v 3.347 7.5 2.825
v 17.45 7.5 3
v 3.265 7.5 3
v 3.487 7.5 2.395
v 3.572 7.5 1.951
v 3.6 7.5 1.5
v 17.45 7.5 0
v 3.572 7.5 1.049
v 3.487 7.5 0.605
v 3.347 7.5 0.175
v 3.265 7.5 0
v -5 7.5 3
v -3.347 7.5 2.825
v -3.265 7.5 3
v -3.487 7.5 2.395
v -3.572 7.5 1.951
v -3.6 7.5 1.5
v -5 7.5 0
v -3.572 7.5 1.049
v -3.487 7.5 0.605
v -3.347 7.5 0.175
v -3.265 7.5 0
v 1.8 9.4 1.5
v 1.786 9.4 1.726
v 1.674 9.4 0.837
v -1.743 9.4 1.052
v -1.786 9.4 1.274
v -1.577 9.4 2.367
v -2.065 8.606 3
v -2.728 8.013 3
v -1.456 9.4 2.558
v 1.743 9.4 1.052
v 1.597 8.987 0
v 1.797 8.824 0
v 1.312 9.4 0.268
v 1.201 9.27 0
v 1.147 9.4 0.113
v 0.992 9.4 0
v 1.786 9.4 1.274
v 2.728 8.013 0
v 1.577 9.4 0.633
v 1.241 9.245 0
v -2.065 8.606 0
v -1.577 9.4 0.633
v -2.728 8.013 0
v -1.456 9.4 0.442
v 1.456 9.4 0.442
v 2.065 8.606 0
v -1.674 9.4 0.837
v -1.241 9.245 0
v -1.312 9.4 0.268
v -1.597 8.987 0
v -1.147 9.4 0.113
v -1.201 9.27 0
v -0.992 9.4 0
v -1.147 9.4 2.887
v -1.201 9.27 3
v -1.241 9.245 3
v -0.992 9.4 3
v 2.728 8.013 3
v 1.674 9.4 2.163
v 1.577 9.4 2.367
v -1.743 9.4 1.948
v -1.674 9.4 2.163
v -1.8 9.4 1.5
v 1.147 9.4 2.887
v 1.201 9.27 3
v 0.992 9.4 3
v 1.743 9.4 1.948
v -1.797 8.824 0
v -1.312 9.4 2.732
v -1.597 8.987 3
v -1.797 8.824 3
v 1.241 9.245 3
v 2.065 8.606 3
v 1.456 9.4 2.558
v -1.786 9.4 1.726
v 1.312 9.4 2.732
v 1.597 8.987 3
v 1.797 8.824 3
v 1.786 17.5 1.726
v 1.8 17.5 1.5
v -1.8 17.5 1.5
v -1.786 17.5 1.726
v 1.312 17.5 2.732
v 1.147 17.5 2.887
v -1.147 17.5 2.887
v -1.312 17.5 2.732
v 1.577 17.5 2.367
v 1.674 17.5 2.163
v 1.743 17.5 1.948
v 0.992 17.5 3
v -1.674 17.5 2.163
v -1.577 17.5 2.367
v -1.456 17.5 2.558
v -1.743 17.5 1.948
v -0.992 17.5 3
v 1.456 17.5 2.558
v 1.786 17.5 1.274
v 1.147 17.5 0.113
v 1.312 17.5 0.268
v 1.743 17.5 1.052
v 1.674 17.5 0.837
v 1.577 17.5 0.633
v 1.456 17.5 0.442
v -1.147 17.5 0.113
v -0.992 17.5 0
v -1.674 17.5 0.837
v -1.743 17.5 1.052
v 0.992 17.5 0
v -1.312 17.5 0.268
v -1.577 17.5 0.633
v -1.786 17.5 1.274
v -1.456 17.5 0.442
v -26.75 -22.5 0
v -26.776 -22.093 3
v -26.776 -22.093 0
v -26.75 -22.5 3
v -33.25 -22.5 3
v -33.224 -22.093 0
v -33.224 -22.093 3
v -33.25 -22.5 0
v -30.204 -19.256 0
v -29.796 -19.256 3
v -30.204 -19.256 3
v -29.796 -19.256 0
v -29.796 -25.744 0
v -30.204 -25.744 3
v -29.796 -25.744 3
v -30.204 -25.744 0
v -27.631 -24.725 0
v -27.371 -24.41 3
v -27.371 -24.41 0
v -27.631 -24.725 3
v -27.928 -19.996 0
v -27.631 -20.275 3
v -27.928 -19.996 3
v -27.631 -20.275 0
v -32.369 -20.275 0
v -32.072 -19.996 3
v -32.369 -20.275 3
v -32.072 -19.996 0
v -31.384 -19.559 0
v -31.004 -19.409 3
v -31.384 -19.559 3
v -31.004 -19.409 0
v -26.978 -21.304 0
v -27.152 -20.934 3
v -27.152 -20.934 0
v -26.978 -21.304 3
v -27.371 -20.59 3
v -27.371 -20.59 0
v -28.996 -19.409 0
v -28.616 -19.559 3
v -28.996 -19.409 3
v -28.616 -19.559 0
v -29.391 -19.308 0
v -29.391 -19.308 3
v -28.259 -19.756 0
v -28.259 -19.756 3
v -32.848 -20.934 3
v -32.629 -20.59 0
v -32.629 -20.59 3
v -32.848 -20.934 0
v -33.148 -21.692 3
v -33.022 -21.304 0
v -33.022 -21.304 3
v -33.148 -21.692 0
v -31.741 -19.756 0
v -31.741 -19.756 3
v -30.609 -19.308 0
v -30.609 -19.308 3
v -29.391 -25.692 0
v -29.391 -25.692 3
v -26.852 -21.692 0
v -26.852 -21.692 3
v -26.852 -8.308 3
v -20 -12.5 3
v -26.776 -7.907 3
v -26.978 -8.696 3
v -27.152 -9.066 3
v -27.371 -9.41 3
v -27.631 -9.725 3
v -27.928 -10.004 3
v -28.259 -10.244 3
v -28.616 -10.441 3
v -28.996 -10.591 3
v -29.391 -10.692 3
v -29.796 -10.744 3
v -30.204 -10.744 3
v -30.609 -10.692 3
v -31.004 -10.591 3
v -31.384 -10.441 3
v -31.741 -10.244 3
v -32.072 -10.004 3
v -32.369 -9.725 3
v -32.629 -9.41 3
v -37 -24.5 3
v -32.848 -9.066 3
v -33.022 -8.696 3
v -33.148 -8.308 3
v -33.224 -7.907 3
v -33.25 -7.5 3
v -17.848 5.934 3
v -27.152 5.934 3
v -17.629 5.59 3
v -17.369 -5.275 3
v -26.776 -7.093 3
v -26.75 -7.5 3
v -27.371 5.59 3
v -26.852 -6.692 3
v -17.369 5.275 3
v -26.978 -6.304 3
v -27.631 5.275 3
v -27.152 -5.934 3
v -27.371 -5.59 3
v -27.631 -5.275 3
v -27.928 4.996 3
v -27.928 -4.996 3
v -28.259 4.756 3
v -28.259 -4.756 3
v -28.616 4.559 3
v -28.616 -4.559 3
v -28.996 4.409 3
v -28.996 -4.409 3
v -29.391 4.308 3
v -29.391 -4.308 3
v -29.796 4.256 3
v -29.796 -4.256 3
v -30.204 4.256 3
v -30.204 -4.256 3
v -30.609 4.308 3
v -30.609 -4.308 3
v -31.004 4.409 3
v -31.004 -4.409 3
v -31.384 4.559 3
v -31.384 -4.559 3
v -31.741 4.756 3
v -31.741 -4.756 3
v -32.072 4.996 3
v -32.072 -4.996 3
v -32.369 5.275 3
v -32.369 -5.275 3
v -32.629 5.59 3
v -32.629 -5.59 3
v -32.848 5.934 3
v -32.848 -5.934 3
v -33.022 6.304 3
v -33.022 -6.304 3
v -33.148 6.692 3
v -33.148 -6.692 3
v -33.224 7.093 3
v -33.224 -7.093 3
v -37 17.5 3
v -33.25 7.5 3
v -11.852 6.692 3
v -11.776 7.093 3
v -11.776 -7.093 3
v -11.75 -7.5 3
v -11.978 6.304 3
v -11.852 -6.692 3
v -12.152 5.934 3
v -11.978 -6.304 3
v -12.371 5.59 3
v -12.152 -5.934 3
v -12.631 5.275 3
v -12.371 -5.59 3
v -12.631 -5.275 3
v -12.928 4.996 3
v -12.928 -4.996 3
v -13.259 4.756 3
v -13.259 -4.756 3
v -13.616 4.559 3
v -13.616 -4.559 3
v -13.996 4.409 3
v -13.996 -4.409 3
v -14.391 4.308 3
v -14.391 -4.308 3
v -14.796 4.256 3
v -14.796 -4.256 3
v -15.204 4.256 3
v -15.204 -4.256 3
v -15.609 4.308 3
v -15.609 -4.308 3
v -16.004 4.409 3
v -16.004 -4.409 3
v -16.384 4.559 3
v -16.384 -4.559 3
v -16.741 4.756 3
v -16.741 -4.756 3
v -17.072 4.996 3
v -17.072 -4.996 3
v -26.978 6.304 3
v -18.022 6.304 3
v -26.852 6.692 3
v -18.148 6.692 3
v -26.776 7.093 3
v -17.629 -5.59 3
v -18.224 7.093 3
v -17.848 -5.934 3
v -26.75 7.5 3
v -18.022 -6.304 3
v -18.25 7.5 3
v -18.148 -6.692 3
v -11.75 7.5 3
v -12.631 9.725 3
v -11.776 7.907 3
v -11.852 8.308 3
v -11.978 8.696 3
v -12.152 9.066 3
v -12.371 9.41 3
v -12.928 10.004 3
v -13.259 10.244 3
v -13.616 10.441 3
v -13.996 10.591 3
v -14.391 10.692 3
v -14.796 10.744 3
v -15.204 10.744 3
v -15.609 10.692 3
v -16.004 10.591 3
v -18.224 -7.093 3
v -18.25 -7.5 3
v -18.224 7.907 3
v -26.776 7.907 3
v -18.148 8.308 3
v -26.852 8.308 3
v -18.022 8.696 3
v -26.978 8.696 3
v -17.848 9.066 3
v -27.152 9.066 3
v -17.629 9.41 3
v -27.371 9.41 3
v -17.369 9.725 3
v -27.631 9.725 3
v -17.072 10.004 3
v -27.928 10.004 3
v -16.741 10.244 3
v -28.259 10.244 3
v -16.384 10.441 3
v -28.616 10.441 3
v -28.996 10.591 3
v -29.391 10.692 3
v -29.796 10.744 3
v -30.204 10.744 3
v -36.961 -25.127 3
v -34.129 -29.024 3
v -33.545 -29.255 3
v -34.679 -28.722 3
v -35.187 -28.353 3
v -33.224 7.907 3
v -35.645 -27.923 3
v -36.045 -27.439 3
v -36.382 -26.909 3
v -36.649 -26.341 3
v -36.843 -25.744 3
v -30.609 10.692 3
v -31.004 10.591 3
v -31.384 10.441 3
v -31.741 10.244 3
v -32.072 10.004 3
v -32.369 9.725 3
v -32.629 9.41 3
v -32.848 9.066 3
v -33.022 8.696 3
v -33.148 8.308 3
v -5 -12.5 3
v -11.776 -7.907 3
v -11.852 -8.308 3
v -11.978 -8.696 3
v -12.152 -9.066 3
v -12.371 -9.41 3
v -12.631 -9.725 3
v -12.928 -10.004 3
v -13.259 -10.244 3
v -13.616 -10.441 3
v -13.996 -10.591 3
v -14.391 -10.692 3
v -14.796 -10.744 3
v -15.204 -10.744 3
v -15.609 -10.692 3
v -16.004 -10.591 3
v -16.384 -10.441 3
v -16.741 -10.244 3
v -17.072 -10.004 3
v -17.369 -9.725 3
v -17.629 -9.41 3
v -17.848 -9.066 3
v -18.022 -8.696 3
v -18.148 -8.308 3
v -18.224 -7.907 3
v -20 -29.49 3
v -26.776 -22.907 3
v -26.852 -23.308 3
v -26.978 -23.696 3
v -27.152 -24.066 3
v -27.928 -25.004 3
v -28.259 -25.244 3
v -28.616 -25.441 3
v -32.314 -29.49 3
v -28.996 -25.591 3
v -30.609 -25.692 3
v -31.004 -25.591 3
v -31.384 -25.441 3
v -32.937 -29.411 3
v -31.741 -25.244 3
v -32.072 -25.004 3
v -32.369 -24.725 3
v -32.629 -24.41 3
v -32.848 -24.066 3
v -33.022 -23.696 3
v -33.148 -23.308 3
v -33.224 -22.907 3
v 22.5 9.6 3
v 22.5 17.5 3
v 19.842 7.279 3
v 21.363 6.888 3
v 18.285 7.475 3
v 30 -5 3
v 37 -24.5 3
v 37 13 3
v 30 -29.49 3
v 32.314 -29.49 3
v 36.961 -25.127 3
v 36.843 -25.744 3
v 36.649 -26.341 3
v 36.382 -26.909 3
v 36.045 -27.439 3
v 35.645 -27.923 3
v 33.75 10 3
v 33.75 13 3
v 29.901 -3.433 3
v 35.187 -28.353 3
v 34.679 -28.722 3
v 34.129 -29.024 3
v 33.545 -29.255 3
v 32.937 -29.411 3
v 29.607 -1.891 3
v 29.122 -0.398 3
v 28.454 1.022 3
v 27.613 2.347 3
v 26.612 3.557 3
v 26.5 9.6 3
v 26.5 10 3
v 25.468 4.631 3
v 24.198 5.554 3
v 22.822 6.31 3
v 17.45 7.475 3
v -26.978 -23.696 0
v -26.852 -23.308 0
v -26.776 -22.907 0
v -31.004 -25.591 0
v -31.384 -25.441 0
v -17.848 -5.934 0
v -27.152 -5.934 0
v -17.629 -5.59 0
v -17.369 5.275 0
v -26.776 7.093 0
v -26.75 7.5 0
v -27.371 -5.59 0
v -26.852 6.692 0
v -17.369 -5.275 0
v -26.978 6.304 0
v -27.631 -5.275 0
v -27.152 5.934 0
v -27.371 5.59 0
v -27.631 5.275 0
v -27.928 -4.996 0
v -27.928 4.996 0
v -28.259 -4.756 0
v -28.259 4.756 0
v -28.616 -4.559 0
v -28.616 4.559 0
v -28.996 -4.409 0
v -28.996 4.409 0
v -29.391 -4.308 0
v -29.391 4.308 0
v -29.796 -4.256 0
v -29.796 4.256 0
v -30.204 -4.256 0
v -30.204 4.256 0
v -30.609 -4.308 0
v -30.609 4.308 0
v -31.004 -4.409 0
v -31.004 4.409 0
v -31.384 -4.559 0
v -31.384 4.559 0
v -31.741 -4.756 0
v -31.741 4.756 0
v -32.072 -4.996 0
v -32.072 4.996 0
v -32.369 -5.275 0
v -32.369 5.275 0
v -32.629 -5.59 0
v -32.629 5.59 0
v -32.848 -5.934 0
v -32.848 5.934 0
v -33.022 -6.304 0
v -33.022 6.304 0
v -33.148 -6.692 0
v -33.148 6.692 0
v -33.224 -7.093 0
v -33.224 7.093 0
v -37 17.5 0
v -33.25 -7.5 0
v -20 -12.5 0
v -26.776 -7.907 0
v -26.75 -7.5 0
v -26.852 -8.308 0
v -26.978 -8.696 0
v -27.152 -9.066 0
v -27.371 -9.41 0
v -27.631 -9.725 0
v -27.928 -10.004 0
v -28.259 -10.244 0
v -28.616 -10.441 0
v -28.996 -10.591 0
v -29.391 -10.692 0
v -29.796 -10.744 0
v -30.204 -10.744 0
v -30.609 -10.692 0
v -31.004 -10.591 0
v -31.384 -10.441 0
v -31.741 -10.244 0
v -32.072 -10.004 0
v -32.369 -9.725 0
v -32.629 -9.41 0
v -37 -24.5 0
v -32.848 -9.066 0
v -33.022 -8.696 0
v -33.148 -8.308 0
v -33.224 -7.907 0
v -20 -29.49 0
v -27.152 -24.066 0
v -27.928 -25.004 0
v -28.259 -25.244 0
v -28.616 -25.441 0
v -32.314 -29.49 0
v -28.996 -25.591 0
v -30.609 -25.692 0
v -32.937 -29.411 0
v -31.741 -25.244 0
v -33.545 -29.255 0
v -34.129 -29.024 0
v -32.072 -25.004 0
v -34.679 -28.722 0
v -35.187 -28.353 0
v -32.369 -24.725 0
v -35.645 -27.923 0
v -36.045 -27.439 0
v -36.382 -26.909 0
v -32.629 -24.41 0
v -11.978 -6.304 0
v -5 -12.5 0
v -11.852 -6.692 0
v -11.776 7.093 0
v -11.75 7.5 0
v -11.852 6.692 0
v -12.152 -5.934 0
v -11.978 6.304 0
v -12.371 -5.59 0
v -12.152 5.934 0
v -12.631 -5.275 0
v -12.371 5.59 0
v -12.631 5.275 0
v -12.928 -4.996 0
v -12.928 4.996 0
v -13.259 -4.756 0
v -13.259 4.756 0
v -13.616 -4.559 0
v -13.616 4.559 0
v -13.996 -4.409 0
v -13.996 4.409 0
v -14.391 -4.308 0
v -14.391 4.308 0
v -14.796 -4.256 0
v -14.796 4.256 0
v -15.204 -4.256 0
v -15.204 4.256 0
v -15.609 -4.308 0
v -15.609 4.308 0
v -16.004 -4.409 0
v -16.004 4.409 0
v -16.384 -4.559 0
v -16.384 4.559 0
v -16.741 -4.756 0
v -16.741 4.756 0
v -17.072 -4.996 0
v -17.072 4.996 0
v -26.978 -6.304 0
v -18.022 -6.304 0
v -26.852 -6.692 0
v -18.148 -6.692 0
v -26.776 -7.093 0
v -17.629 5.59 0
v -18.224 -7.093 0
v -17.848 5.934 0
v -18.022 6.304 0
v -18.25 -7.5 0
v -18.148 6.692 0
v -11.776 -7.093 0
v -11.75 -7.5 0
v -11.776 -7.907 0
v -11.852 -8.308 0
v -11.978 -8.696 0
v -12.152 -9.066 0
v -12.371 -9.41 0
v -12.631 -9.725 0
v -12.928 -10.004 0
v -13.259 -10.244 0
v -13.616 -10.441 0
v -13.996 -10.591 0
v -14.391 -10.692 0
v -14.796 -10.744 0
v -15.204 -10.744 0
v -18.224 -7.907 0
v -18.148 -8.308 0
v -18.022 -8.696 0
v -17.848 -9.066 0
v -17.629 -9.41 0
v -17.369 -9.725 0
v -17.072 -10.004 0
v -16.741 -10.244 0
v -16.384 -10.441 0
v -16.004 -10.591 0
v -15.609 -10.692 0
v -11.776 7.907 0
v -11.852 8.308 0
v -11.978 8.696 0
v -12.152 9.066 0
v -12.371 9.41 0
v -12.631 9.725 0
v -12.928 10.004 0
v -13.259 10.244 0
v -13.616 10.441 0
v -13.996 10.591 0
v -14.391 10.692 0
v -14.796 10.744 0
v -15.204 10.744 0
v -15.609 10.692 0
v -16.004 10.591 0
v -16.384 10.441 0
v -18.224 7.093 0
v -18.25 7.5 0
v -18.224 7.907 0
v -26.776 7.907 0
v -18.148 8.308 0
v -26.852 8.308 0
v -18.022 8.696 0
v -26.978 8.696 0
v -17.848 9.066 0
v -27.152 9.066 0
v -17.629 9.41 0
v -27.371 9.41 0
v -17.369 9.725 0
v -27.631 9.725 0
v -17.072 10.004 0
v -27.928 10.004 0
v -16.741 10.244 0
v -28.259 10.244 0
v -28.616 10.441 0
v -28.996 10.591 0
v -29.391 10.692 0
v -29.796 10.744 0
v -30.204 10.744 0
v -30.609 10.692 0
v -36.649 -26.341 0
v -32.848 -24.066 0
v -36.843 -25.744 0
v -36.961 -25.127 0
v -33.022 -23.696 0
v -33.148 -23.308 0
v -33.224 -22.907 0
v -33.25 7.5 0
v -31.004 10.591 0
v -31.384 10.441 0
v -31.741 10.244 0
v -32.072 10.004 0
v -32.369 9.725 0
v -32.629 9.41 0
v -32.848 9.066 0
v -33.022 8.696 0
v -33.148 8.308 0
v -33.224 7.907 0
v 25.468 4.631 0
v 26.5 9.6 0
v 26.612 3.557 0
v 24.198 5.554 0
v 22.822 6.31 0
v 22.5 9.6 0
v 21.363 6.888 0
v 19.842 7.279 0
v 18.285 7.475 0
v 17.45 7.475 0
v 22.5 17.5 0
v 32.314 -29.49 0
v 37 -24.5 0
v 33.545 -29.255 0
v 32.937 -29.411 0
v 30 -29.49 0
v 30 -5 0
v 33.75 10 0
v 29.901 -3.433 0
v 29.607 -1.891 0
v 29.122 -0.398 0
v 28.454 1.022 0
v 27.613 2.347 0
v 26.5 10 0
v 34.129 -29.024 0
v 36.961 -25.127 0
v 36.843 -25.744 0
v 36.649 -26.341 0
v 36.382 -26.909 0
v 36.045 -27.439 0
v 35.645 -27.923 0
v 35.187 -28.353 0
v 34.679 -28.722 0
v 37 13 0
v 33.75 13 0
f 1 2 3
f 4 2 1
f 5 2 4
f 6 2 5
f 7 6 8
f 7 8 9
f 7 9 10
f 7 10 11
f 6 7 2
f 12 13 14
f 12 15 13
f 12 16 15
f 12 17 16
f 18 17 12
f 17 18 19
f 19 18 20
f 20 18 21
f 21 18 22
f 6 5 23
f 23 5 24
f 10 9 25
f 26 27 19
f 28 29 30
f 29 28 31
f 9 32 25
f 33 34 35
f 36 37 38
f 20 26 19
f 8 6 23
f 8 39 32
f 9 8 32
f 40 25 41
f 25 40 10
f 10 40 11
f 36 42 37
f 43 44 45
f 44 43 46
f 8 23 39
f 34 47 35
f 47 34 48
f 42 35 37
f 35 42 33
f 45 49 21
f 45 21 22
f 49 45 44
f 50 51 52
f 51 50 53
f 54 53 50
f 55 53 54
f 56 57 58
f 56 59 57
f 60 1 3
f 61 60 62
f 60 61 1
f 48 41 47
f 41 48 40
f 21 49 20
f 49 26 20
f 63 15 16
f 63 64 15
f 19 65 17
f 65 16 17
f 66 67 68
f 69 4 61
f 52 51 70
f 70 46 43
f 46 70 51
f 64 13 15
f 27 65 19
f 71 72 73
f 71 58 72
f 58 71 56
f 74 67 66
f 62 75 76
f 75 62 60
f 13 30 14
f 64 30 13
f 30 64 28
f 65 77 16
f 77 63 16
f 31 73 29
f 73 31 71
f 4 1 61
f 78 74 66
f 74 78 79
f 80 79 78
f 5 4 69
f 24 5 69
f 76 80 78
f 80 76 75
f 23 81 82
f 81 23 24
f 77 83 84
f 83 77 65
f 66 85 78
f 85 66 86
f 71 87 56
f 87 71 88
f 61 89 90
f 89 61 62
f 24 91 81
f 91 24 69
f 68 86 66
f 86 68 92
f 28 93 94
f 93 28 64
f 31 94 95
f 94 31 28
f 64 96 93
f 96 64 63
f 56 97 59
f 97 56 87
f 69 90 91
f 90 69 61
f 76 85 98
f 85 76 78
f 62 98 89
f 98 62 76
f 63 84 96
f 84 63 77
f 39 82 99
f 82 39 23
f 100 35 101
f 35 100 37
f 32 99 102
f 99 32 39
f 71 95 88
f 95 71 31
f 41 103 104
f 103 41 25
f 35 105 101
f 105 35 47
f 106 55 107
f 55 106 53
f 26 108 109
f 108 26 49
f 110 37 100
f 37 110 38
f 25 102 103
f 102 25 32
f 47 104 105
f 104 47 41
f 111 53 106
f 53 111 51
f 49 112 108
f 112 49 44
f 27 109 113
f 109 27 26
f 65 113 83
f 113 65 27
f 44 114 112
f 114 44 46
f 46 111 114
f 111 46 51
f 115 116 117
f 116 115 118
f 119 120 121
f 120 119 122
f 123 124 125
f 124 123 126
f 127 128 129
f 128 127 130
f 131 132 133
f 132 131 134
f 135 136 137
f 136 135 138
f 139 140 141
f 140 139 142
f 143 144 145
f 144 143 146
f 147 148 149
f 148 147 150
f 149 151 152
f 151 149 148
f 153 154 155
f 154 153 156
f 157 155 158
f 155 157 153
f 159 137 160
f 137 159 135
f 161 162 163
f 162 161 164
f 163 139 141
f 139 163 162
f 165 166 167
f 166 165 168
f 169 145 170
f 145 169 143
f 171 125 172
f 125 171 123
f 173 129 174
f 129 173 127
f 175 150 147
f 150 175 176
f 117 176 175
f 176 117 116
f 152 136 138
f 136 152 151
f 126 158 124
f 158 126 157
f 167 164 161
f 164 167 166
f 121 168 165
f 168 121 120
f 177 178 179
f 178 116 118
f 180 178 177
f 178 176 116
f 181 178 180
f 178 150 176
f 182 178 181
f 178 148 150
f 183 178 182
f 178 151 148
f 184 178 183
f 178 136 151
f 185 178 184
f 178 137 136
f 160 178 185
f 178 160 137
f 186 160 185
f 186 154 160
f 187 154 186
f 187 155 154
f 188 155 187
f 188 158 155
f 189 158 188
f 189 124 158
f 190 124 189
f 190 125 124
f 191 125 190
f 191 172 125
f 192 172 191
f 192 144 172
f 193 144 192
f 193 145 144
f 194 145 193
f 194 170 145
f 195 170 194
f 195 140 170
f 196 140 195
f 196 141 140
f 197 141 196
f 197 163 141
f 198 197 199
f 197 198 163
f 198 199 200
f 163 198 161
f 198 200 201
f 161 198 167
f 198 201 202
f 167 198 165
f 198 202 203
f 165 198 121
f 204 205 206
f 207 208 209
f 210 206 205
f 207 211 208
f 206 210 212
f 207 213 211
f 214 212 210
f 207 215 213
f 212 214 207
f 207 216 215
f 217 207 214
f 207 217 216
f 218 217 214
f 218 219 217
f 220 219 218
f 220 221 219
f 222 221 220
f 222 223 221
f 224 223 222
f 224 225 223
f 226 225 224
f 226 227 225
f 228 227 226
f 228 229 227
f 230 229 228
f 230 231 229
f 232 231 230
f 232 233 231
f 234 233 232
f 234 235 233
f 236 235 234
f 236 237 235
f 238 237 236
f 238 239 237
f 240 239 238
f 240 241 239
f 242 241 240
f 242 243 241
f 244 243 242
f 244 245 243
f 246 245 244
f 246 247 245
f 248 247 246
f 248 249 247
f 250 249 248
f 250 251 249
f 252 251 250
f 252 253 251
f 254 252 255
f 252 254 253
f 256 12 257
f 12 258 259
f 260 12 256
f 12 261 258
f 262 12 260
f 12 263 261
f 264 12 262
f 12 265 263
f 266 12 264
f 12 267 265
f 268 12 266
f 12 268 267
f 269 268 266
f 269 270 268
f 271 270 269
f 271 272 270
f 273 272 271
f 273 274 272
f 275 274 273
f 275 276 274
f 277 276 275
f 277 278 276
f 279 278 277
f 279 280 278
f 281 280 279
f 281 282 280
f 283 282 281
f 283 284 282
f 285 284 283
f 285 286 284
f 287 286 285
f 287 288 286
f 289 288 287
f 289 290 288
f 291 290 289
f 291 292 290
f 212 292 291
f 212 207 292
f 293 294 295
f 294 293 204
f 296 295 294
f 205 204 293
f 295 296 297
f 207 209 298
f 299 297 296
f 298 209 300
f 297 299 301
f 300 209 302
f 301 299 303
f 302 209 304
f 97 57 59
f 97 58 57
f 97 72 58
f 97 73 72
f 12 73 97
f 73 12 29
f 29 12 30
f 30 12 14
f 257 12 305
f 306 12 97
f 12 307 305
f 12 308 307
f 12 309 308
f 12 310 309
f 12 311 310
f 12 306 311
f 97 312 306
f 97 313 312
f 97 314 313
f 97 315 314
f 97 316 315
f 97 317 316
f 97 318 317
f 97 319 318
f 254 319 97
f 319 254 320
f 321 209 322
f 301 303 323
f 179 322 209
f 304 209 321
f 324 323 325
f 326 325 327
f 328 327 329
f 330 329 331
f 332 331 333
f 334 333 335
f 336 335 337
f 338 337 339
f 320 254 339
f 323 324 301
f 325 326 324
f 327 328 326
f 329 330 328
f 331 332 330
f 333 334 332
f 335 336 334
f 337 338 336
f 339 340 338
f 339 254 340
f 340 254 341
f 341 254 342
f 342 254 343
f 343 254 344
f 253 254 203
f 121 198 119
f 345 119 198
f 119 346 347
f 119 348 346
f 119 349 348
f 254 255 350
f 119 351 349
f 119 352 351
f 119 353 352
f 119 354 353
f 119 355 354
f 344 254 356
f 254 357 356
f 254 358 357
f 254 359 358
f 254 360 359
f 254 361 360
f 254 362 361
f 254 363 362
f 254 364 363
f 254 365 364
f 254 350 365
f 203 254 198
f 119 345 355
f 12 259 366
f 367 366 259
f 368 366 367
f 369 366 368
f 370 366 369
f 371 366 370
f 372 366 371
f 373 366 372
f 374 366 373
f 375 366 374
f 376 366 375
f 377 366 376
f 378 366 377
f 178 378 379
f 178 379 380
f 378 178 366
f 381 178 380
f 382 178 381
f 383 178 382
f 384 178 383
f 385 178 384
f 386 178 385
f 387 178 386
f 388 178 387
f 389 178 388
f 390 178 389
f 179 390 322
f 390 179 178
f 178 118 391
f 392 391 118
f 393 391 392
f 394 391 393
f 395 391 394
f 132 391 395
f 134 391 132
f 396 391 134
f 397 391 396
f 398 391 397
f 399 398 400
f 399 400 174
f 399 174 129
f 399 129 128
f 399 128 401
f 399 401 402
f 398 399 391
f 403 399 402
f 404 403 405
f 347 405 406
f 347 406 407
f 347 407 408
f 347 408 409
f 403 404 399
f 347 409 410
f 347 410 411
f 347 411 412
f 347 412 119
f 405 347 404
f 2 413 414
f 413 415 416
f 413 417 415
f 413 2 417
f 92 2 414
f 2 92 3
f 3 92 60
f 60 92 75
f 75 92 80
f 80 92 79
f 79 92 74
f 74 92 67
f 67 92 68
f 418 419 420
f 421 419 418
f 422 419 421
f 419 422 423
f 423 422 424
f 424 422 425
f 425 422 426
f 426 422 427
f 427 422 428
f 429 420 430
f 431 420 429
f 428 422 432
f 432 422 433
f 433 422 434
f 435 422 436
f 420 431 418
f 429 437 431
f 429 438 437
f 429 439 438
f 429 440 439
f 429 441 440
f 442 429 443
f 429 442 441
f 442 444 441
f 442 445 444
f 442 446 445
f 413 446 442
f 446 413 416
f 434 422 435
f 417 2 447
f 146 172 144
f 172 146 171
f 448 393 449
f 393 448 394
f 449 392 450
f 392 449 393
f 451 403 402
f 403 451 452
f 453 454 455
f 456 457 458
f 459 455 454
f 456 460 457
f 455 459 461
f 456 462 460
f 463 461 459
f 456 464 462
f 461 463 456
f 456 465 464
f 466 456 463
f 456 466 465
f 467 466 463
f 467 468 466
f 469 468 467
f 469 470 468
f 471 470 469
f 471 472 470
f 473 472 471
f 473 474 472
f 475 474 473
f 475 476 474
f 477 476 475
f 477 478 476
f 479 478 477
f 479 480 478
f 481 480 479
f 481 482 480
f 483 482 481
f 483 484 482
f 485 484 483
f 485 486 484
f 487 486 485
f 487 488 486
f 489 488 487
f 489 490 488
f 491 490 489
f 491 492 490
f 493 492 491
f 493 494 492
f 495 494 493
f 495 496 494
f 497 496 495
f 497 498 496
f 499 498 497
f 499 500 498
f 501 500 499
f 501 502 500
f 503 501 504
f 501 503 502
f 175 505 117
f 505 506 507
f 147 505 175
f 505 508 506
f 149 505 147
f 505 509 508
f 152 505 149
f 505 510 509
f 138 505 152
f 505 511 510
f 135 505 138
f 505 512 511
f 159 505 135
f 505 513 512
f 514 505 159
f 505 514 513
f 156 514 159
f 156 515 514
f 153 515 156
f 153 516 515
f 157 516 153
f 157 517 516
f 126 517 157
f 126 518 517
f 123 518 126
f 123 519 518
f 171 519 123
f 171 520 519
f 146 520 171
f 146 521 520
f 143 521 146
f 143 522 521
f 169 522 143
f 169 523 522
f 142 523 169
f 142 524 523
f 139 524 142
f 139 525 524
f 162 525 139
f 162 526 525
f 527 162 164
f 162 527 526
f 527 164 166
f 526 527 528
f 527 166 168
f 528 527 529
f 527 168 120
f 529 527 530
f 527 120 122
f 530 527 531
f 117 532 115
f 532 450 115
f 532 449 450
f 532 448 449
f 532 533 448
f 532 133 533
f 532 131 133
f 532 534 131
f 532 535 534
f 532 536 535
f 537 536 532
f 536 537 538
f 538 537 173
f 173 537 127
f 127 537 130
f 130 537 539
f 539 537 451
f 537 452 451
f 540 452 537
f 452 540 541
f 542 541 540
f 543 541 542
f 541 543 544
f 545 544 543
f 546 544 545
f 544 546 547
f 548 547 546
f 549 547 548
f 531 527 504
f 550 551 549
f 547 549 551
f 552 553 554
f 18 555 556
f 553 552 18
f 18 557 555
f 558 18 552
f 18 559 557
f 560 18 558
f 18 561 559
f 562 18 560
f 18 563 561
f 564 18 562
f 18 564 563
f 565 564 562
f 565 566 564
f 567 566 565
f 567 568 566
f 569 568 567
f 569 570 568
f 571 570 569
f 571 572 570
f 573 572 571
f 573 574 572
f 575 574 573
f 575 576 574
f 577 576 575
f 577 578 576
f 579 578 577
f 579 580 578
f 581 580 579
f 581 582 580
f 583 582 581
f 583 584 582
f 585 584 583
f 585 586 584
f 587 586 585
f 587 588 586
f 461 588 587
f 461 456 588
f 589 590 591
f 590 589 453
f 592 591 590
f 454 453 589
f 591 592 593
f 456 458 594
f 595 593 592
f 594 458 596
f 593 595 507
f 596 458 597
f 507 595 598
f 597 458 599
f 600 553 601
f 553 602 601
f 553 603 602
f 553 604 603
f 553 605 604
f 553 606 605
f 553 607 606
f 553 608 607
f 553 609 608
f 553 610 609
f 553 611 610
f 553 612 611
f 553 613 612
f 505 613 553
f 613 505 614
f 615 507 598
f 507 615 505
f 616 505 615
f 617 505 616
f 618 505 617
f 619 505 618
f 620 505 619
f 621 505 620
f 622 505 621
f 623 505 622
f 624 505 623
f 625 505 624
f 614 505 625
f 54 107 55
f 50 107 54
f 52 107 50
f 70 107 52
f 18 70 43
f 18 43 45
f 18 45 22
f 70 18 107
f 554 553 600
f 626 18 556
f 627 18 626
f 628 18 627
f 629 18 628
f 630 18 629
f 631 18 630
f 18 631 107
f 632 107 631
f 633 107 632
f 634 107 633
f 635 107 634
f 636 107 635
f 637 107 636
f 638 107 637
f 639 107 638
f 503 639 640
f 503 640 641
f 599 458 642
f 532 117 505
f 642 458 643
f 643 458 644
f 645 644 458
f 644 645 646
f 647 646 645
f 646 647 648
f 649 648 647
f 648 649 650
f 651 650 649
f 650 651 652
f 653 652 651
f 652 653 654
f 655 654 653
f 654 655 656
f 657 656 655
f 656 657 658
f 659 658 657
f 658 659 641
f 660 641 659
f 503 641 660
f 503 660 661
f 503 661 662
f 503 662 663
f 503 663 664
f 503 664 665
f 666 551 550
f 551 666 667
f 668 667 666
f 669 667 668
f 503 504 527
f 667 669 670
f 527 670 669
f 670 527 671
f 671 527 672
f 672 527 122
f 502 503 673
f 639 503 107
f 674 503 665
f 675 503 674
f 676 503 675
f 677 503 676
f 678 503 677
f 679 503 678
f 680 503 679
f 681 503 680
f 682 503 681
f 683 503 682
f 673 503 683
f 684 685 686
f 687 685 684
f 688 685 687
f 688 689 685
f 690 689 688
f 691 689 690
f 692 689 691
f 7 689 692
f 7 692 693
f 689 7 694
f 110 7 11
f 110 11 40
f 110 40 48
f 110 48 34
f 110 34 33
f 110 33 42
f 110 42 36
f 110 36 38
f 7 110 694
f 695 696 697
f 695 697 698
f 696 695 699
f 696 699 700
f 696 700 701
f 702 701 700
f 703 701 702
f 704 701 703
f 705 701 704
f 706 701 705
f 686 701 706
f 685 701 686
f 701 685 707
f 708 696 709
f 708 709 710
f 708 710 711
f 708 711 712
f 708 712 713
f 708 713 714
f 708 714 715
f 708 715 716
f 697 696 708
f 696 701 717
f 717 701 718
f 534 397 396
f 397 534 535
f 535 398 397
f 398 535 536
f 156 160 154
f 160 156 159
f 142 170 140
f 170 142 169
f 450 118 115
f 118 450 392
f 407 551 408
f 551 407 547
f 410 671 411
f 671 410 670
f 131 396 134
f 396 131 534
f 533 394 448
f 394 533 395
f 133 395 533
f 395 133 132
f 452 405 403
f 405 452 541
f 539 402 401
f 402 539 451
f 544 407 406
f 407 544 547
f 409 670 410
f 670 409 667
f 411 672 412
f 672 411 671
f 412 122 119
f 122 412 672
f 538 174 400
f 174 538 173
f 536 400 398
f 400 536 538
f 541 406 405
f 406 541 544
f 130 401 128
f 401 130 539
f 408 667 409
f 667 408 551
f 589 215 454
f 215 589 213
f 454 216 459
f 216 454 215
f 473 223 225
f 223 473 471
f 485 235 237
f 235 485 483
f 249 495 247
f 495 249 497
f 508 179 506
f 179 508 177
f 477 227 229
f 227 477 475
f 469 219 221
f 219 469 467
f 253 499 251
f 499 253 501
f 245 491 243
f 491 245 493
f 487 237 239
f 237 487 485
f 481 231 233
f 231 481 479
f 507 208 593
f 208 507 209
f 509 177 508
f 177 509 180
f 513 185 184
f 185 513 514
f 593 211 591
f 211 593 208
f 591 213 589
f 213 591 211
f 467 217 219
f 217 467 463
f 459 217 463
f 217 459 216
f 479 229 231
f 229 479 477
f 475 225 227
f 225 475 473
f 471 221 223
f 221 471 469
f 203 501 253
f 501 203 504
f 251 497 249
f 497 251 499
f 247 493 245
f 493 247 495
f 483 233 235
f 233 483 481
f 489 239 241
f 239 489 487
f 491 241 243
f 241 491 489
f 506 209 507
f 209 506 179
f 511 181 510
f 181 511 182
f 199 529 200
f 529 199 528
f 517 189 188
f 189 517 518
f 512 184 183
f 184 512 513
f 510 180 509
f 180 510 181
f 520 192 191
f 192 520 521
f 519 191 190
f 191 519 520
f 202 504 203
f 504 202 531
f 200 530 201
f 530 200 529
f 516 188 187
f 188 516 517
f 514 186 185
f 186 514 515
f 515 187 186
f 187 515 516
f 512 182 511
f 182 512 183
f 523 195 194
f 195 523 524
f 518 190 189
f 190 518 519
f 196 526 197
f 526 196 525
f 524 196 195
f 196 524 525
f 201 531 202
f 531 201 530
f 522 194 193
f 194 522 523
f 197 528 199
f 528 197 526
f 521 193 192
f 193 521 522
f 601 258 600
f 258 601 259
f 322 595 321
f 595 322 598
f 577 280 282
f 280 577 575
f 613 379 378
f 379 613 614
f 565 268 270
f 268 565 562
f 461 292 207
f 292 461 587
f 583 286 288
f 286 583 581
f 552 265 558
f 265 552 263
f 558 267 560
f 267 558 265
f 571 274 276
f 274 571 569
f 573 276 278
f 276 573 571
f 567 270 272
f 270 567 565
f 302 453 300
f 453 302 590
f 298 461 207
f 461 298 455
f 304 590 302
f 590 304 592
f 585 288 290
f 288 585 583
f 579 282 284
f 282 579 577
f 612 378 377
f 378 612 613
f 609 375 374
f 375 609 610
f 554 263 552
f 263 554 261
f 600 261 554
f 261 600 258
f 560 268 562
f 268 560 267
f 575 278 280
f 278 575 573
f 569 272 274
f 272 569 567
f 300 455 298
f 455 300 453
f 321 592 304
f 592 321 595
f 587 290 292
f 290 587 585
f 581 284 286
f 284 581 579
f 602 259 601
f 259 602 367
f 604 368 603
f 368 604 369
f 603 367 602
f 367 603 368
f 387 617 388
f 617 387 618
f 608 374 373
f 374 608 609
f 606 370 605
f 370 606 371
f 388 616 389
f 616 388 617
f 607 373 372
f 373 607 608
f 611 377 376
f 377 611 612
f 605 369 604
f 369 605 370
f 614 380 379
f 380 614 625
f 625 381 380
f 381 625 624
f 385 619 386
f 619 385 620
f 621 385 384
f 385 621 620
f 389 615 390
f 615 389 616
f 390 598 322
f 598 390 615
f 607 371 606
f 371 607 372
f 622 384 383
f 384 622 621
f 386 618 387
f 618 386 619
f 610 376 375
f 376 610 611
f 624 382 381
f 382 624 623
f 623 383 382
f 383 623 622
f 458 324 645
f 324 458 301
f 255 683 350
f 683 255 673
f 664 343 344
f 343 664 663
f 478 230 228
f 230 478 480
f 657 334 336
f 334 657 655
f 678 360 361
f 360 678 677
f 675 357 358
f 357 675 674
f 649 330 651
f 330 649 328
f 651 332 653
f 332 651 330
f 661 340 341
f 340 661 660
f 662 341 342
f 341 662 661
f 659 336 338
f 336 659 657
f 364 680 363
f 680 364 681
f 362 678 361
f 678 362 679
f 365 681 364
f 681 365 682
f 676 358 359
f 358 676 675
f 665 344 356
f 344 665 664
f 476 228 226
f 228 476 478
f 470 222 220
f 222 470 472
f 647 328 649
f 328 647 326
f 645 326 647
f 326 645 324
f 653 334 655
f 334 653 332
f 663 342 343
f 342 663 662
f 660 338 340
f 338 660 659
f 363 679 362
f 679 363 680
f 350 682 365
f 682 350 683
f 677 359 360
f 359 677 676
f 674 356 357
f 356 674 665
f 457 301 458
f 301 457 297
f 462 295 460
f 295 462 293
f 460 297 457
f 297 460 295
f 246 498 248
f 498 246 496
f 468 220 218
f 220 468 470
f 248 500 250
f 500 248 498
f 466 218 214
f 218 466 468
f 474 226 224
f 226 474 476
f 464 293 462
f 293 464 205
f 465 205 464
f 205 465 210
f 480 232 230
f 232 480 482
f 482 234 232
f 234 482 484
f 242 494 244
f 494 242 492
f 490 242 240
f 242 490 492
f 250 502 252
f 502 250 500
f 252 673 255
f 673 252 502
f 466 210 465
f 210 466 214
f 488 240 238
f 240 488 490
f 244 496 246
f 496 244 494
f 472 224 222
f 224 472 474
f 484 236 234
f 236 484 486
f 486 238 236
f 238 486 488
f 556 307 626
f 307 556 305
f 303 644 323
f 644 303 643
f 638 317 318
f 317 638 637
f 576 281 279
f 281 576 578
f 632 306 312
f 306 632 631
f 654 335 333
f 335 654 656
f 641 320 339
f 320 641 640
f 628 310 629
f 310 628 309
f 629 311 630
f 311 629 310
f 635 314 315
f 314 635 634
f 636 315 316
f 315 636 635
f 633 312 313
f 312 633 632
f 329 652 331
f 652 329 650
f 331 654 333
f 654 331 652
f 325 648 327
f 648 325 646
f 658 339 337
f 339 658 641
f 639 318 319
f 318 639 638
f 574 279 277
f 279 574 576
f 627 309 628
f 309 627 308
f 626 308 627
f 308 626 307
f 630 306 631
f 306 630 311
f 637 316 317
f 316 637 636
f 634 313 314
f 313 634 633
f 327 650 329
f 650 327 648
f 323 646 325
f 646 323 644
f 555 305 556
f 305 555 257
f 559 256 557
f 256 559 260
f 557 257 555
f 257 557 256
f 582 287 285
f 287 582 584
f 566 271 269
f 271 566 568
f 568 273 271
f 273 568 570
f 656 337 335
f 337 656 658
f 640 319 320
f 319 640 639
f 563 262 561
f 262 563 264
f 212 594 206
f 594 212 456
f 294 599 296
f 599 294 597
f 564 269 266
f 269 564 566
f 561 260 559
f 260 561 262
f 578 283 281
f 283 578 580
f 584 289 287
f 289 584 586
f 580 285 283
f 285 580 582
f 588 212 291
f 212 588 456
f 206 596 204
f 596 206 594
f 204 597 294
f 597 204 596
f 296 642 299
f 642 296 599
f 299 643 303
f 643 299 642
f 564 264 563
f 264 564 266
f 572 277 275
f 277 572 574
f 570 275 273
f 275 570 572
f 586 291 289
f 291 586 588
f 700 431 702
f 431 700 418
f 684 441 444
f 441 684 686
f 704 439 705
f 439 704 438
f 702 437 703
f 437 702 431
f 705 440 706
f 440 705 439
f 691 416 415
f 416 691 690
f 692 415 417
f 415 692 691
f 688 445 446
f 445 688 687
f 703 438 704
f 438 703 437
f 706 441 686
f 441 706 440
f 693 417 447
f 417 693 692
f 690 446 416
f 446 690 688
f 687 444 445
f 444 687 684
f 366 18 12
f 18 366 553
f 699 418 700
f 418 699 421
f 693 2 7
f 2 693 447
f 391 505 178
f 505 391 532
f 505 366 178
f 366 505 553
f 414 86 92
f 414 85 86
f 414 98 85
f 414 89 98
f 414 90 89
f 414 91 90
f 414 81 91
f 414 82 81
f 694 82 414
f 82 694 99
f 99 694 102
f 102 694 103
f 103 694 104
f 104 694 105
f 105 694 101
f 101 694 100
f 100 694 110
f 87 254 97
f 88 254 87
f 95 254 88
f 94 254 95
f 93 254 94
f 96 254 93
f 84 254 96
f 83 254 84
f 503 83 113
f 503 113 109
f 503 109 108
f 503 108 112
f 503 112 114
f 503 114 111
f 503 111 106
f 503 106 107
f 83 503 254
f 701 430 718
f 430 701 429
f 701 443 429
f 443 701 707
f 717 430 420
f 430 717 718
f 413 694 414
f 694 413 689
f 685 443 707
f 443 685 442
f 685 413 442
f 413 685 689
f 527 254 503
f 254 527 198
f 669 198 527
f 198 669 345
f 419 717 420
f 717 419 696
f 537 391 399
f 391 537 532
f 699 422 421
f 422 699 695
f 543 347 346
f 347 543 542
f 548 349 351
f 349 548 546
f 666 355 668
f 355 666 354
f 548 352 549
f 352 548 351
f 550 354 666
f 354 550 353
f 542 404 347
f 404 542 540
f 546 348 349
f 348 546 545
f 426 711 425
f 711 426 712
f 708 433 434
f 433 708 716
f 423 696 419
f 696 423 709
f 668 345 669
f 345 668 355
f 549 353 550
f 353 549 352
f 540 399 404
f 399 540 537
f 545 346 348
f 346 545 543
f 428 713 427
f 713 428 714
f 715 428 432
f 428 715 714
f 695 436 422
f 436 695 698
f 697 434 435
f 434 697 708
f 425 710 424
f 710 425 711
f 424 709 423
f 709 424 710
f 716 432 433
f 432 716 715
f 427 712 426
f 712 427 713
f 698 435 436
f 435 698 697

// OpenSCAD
$fn = 50;


difference() {
	union() {
		hull() {
			translate(v = [-32.0000000000, 24.5000000000, 0]) {
				cylinder(h = 3, r = 5);
			}
			translate(v = [32.0000000000, 24.5000000000, 0]) {
				cylinder(h = 3, r = 5);
			}
			translate(v = [-32.0000000000, -24.5000000000, 0]) {
				cylinder(h = 3, r = 5);
			}
			translate(v = [32.0000000000, -24.5000000000, 0]) {
				cylinder(h = 3, r = 5);
			}
		}
	}
	union() {
		translate(v = [0, 7.5000000000, 1.5000000000]) {
			rotate(a = [90, 0, 0]) {
				difference() {
					union() {
						#translate(v = [0, 0, -12.0000000000]) {
							cylinder(h = 12, r = 1.5000000000);
						}
						#translate(v = [0, 0, -1.9000000000]) {
							cylinder(h = 1.9000000000, r1 = 1.8000000000, r2 = 3.6000000000);
						}
						#translate(v = [0, 0, -12.0000000000]) {
							cylinder(h = 12, r = 1.8000000000);
						}
						#translate(v = [0, 0, -12.0000000000]) {
							cylinder(h = 12, r = 1.5000000000);
						}
					}
					union();
				}
			}
		}
		translate(v = [-30.0000000000, -22.5000000000, 0]) {
			cylinder(h = 3, r = 3.2500000000);
		}
		translate(v = [-30.0000000000, -7.5000000000, 0]) {
			cylinder(h = 3, r = 3.2500000000);
		}
		translate(v = [-15.0000000000, -7.5000000000, 0]) {
			cylinder(h = 3, r = 3.2500000000);
		}
		translate(v = [-30.0000000000, 7.5000000000, 0]) {
			cylinder(h = 3, r = 3.2500000000);
		}
		translate(v = [-15.0000000000, 7.5000000000, 0]) {
			cylinder(h = 3, r = 3.2500000000);
		}
		translate(v = [17.5000000000, -5, 0.0000000000]) {
			cylinder(h = 3, r = 12.5000000000);
		}
		translate(v = [-5.0000000000, -95.0000000000, 0]) {
			cube(size = [35, 90, 3]);
		}
		translate(v = [-5.0000000000, -95.0000000000, 0]) {
			cube(size = [22.4500000000, 102.5000000000, 3]);
		}
		translate(v = [-20.0000000000, -72.5000000000, 0]) {
			cube(size = [50, 60, 3]);
		}
		translate(v = [-58.5000000000, 17.5000000000, 0]) {
			cube(size = [100, 85, 3]);
		}
		translate(v = [26.2500000000, 10.0000000000, 0]) {
			cube(size = [7.5000000000, 100, 3]);
		}
		translate(v = [33.5000000000, 13.0000000000, 0]) {
			cube(size = [7, 94, 3]);
		}
		translate(v = [22.5000000000, 9.6000000000, 0]) {
			cube(size = [4, 8, 3]);
		}
	}
}
